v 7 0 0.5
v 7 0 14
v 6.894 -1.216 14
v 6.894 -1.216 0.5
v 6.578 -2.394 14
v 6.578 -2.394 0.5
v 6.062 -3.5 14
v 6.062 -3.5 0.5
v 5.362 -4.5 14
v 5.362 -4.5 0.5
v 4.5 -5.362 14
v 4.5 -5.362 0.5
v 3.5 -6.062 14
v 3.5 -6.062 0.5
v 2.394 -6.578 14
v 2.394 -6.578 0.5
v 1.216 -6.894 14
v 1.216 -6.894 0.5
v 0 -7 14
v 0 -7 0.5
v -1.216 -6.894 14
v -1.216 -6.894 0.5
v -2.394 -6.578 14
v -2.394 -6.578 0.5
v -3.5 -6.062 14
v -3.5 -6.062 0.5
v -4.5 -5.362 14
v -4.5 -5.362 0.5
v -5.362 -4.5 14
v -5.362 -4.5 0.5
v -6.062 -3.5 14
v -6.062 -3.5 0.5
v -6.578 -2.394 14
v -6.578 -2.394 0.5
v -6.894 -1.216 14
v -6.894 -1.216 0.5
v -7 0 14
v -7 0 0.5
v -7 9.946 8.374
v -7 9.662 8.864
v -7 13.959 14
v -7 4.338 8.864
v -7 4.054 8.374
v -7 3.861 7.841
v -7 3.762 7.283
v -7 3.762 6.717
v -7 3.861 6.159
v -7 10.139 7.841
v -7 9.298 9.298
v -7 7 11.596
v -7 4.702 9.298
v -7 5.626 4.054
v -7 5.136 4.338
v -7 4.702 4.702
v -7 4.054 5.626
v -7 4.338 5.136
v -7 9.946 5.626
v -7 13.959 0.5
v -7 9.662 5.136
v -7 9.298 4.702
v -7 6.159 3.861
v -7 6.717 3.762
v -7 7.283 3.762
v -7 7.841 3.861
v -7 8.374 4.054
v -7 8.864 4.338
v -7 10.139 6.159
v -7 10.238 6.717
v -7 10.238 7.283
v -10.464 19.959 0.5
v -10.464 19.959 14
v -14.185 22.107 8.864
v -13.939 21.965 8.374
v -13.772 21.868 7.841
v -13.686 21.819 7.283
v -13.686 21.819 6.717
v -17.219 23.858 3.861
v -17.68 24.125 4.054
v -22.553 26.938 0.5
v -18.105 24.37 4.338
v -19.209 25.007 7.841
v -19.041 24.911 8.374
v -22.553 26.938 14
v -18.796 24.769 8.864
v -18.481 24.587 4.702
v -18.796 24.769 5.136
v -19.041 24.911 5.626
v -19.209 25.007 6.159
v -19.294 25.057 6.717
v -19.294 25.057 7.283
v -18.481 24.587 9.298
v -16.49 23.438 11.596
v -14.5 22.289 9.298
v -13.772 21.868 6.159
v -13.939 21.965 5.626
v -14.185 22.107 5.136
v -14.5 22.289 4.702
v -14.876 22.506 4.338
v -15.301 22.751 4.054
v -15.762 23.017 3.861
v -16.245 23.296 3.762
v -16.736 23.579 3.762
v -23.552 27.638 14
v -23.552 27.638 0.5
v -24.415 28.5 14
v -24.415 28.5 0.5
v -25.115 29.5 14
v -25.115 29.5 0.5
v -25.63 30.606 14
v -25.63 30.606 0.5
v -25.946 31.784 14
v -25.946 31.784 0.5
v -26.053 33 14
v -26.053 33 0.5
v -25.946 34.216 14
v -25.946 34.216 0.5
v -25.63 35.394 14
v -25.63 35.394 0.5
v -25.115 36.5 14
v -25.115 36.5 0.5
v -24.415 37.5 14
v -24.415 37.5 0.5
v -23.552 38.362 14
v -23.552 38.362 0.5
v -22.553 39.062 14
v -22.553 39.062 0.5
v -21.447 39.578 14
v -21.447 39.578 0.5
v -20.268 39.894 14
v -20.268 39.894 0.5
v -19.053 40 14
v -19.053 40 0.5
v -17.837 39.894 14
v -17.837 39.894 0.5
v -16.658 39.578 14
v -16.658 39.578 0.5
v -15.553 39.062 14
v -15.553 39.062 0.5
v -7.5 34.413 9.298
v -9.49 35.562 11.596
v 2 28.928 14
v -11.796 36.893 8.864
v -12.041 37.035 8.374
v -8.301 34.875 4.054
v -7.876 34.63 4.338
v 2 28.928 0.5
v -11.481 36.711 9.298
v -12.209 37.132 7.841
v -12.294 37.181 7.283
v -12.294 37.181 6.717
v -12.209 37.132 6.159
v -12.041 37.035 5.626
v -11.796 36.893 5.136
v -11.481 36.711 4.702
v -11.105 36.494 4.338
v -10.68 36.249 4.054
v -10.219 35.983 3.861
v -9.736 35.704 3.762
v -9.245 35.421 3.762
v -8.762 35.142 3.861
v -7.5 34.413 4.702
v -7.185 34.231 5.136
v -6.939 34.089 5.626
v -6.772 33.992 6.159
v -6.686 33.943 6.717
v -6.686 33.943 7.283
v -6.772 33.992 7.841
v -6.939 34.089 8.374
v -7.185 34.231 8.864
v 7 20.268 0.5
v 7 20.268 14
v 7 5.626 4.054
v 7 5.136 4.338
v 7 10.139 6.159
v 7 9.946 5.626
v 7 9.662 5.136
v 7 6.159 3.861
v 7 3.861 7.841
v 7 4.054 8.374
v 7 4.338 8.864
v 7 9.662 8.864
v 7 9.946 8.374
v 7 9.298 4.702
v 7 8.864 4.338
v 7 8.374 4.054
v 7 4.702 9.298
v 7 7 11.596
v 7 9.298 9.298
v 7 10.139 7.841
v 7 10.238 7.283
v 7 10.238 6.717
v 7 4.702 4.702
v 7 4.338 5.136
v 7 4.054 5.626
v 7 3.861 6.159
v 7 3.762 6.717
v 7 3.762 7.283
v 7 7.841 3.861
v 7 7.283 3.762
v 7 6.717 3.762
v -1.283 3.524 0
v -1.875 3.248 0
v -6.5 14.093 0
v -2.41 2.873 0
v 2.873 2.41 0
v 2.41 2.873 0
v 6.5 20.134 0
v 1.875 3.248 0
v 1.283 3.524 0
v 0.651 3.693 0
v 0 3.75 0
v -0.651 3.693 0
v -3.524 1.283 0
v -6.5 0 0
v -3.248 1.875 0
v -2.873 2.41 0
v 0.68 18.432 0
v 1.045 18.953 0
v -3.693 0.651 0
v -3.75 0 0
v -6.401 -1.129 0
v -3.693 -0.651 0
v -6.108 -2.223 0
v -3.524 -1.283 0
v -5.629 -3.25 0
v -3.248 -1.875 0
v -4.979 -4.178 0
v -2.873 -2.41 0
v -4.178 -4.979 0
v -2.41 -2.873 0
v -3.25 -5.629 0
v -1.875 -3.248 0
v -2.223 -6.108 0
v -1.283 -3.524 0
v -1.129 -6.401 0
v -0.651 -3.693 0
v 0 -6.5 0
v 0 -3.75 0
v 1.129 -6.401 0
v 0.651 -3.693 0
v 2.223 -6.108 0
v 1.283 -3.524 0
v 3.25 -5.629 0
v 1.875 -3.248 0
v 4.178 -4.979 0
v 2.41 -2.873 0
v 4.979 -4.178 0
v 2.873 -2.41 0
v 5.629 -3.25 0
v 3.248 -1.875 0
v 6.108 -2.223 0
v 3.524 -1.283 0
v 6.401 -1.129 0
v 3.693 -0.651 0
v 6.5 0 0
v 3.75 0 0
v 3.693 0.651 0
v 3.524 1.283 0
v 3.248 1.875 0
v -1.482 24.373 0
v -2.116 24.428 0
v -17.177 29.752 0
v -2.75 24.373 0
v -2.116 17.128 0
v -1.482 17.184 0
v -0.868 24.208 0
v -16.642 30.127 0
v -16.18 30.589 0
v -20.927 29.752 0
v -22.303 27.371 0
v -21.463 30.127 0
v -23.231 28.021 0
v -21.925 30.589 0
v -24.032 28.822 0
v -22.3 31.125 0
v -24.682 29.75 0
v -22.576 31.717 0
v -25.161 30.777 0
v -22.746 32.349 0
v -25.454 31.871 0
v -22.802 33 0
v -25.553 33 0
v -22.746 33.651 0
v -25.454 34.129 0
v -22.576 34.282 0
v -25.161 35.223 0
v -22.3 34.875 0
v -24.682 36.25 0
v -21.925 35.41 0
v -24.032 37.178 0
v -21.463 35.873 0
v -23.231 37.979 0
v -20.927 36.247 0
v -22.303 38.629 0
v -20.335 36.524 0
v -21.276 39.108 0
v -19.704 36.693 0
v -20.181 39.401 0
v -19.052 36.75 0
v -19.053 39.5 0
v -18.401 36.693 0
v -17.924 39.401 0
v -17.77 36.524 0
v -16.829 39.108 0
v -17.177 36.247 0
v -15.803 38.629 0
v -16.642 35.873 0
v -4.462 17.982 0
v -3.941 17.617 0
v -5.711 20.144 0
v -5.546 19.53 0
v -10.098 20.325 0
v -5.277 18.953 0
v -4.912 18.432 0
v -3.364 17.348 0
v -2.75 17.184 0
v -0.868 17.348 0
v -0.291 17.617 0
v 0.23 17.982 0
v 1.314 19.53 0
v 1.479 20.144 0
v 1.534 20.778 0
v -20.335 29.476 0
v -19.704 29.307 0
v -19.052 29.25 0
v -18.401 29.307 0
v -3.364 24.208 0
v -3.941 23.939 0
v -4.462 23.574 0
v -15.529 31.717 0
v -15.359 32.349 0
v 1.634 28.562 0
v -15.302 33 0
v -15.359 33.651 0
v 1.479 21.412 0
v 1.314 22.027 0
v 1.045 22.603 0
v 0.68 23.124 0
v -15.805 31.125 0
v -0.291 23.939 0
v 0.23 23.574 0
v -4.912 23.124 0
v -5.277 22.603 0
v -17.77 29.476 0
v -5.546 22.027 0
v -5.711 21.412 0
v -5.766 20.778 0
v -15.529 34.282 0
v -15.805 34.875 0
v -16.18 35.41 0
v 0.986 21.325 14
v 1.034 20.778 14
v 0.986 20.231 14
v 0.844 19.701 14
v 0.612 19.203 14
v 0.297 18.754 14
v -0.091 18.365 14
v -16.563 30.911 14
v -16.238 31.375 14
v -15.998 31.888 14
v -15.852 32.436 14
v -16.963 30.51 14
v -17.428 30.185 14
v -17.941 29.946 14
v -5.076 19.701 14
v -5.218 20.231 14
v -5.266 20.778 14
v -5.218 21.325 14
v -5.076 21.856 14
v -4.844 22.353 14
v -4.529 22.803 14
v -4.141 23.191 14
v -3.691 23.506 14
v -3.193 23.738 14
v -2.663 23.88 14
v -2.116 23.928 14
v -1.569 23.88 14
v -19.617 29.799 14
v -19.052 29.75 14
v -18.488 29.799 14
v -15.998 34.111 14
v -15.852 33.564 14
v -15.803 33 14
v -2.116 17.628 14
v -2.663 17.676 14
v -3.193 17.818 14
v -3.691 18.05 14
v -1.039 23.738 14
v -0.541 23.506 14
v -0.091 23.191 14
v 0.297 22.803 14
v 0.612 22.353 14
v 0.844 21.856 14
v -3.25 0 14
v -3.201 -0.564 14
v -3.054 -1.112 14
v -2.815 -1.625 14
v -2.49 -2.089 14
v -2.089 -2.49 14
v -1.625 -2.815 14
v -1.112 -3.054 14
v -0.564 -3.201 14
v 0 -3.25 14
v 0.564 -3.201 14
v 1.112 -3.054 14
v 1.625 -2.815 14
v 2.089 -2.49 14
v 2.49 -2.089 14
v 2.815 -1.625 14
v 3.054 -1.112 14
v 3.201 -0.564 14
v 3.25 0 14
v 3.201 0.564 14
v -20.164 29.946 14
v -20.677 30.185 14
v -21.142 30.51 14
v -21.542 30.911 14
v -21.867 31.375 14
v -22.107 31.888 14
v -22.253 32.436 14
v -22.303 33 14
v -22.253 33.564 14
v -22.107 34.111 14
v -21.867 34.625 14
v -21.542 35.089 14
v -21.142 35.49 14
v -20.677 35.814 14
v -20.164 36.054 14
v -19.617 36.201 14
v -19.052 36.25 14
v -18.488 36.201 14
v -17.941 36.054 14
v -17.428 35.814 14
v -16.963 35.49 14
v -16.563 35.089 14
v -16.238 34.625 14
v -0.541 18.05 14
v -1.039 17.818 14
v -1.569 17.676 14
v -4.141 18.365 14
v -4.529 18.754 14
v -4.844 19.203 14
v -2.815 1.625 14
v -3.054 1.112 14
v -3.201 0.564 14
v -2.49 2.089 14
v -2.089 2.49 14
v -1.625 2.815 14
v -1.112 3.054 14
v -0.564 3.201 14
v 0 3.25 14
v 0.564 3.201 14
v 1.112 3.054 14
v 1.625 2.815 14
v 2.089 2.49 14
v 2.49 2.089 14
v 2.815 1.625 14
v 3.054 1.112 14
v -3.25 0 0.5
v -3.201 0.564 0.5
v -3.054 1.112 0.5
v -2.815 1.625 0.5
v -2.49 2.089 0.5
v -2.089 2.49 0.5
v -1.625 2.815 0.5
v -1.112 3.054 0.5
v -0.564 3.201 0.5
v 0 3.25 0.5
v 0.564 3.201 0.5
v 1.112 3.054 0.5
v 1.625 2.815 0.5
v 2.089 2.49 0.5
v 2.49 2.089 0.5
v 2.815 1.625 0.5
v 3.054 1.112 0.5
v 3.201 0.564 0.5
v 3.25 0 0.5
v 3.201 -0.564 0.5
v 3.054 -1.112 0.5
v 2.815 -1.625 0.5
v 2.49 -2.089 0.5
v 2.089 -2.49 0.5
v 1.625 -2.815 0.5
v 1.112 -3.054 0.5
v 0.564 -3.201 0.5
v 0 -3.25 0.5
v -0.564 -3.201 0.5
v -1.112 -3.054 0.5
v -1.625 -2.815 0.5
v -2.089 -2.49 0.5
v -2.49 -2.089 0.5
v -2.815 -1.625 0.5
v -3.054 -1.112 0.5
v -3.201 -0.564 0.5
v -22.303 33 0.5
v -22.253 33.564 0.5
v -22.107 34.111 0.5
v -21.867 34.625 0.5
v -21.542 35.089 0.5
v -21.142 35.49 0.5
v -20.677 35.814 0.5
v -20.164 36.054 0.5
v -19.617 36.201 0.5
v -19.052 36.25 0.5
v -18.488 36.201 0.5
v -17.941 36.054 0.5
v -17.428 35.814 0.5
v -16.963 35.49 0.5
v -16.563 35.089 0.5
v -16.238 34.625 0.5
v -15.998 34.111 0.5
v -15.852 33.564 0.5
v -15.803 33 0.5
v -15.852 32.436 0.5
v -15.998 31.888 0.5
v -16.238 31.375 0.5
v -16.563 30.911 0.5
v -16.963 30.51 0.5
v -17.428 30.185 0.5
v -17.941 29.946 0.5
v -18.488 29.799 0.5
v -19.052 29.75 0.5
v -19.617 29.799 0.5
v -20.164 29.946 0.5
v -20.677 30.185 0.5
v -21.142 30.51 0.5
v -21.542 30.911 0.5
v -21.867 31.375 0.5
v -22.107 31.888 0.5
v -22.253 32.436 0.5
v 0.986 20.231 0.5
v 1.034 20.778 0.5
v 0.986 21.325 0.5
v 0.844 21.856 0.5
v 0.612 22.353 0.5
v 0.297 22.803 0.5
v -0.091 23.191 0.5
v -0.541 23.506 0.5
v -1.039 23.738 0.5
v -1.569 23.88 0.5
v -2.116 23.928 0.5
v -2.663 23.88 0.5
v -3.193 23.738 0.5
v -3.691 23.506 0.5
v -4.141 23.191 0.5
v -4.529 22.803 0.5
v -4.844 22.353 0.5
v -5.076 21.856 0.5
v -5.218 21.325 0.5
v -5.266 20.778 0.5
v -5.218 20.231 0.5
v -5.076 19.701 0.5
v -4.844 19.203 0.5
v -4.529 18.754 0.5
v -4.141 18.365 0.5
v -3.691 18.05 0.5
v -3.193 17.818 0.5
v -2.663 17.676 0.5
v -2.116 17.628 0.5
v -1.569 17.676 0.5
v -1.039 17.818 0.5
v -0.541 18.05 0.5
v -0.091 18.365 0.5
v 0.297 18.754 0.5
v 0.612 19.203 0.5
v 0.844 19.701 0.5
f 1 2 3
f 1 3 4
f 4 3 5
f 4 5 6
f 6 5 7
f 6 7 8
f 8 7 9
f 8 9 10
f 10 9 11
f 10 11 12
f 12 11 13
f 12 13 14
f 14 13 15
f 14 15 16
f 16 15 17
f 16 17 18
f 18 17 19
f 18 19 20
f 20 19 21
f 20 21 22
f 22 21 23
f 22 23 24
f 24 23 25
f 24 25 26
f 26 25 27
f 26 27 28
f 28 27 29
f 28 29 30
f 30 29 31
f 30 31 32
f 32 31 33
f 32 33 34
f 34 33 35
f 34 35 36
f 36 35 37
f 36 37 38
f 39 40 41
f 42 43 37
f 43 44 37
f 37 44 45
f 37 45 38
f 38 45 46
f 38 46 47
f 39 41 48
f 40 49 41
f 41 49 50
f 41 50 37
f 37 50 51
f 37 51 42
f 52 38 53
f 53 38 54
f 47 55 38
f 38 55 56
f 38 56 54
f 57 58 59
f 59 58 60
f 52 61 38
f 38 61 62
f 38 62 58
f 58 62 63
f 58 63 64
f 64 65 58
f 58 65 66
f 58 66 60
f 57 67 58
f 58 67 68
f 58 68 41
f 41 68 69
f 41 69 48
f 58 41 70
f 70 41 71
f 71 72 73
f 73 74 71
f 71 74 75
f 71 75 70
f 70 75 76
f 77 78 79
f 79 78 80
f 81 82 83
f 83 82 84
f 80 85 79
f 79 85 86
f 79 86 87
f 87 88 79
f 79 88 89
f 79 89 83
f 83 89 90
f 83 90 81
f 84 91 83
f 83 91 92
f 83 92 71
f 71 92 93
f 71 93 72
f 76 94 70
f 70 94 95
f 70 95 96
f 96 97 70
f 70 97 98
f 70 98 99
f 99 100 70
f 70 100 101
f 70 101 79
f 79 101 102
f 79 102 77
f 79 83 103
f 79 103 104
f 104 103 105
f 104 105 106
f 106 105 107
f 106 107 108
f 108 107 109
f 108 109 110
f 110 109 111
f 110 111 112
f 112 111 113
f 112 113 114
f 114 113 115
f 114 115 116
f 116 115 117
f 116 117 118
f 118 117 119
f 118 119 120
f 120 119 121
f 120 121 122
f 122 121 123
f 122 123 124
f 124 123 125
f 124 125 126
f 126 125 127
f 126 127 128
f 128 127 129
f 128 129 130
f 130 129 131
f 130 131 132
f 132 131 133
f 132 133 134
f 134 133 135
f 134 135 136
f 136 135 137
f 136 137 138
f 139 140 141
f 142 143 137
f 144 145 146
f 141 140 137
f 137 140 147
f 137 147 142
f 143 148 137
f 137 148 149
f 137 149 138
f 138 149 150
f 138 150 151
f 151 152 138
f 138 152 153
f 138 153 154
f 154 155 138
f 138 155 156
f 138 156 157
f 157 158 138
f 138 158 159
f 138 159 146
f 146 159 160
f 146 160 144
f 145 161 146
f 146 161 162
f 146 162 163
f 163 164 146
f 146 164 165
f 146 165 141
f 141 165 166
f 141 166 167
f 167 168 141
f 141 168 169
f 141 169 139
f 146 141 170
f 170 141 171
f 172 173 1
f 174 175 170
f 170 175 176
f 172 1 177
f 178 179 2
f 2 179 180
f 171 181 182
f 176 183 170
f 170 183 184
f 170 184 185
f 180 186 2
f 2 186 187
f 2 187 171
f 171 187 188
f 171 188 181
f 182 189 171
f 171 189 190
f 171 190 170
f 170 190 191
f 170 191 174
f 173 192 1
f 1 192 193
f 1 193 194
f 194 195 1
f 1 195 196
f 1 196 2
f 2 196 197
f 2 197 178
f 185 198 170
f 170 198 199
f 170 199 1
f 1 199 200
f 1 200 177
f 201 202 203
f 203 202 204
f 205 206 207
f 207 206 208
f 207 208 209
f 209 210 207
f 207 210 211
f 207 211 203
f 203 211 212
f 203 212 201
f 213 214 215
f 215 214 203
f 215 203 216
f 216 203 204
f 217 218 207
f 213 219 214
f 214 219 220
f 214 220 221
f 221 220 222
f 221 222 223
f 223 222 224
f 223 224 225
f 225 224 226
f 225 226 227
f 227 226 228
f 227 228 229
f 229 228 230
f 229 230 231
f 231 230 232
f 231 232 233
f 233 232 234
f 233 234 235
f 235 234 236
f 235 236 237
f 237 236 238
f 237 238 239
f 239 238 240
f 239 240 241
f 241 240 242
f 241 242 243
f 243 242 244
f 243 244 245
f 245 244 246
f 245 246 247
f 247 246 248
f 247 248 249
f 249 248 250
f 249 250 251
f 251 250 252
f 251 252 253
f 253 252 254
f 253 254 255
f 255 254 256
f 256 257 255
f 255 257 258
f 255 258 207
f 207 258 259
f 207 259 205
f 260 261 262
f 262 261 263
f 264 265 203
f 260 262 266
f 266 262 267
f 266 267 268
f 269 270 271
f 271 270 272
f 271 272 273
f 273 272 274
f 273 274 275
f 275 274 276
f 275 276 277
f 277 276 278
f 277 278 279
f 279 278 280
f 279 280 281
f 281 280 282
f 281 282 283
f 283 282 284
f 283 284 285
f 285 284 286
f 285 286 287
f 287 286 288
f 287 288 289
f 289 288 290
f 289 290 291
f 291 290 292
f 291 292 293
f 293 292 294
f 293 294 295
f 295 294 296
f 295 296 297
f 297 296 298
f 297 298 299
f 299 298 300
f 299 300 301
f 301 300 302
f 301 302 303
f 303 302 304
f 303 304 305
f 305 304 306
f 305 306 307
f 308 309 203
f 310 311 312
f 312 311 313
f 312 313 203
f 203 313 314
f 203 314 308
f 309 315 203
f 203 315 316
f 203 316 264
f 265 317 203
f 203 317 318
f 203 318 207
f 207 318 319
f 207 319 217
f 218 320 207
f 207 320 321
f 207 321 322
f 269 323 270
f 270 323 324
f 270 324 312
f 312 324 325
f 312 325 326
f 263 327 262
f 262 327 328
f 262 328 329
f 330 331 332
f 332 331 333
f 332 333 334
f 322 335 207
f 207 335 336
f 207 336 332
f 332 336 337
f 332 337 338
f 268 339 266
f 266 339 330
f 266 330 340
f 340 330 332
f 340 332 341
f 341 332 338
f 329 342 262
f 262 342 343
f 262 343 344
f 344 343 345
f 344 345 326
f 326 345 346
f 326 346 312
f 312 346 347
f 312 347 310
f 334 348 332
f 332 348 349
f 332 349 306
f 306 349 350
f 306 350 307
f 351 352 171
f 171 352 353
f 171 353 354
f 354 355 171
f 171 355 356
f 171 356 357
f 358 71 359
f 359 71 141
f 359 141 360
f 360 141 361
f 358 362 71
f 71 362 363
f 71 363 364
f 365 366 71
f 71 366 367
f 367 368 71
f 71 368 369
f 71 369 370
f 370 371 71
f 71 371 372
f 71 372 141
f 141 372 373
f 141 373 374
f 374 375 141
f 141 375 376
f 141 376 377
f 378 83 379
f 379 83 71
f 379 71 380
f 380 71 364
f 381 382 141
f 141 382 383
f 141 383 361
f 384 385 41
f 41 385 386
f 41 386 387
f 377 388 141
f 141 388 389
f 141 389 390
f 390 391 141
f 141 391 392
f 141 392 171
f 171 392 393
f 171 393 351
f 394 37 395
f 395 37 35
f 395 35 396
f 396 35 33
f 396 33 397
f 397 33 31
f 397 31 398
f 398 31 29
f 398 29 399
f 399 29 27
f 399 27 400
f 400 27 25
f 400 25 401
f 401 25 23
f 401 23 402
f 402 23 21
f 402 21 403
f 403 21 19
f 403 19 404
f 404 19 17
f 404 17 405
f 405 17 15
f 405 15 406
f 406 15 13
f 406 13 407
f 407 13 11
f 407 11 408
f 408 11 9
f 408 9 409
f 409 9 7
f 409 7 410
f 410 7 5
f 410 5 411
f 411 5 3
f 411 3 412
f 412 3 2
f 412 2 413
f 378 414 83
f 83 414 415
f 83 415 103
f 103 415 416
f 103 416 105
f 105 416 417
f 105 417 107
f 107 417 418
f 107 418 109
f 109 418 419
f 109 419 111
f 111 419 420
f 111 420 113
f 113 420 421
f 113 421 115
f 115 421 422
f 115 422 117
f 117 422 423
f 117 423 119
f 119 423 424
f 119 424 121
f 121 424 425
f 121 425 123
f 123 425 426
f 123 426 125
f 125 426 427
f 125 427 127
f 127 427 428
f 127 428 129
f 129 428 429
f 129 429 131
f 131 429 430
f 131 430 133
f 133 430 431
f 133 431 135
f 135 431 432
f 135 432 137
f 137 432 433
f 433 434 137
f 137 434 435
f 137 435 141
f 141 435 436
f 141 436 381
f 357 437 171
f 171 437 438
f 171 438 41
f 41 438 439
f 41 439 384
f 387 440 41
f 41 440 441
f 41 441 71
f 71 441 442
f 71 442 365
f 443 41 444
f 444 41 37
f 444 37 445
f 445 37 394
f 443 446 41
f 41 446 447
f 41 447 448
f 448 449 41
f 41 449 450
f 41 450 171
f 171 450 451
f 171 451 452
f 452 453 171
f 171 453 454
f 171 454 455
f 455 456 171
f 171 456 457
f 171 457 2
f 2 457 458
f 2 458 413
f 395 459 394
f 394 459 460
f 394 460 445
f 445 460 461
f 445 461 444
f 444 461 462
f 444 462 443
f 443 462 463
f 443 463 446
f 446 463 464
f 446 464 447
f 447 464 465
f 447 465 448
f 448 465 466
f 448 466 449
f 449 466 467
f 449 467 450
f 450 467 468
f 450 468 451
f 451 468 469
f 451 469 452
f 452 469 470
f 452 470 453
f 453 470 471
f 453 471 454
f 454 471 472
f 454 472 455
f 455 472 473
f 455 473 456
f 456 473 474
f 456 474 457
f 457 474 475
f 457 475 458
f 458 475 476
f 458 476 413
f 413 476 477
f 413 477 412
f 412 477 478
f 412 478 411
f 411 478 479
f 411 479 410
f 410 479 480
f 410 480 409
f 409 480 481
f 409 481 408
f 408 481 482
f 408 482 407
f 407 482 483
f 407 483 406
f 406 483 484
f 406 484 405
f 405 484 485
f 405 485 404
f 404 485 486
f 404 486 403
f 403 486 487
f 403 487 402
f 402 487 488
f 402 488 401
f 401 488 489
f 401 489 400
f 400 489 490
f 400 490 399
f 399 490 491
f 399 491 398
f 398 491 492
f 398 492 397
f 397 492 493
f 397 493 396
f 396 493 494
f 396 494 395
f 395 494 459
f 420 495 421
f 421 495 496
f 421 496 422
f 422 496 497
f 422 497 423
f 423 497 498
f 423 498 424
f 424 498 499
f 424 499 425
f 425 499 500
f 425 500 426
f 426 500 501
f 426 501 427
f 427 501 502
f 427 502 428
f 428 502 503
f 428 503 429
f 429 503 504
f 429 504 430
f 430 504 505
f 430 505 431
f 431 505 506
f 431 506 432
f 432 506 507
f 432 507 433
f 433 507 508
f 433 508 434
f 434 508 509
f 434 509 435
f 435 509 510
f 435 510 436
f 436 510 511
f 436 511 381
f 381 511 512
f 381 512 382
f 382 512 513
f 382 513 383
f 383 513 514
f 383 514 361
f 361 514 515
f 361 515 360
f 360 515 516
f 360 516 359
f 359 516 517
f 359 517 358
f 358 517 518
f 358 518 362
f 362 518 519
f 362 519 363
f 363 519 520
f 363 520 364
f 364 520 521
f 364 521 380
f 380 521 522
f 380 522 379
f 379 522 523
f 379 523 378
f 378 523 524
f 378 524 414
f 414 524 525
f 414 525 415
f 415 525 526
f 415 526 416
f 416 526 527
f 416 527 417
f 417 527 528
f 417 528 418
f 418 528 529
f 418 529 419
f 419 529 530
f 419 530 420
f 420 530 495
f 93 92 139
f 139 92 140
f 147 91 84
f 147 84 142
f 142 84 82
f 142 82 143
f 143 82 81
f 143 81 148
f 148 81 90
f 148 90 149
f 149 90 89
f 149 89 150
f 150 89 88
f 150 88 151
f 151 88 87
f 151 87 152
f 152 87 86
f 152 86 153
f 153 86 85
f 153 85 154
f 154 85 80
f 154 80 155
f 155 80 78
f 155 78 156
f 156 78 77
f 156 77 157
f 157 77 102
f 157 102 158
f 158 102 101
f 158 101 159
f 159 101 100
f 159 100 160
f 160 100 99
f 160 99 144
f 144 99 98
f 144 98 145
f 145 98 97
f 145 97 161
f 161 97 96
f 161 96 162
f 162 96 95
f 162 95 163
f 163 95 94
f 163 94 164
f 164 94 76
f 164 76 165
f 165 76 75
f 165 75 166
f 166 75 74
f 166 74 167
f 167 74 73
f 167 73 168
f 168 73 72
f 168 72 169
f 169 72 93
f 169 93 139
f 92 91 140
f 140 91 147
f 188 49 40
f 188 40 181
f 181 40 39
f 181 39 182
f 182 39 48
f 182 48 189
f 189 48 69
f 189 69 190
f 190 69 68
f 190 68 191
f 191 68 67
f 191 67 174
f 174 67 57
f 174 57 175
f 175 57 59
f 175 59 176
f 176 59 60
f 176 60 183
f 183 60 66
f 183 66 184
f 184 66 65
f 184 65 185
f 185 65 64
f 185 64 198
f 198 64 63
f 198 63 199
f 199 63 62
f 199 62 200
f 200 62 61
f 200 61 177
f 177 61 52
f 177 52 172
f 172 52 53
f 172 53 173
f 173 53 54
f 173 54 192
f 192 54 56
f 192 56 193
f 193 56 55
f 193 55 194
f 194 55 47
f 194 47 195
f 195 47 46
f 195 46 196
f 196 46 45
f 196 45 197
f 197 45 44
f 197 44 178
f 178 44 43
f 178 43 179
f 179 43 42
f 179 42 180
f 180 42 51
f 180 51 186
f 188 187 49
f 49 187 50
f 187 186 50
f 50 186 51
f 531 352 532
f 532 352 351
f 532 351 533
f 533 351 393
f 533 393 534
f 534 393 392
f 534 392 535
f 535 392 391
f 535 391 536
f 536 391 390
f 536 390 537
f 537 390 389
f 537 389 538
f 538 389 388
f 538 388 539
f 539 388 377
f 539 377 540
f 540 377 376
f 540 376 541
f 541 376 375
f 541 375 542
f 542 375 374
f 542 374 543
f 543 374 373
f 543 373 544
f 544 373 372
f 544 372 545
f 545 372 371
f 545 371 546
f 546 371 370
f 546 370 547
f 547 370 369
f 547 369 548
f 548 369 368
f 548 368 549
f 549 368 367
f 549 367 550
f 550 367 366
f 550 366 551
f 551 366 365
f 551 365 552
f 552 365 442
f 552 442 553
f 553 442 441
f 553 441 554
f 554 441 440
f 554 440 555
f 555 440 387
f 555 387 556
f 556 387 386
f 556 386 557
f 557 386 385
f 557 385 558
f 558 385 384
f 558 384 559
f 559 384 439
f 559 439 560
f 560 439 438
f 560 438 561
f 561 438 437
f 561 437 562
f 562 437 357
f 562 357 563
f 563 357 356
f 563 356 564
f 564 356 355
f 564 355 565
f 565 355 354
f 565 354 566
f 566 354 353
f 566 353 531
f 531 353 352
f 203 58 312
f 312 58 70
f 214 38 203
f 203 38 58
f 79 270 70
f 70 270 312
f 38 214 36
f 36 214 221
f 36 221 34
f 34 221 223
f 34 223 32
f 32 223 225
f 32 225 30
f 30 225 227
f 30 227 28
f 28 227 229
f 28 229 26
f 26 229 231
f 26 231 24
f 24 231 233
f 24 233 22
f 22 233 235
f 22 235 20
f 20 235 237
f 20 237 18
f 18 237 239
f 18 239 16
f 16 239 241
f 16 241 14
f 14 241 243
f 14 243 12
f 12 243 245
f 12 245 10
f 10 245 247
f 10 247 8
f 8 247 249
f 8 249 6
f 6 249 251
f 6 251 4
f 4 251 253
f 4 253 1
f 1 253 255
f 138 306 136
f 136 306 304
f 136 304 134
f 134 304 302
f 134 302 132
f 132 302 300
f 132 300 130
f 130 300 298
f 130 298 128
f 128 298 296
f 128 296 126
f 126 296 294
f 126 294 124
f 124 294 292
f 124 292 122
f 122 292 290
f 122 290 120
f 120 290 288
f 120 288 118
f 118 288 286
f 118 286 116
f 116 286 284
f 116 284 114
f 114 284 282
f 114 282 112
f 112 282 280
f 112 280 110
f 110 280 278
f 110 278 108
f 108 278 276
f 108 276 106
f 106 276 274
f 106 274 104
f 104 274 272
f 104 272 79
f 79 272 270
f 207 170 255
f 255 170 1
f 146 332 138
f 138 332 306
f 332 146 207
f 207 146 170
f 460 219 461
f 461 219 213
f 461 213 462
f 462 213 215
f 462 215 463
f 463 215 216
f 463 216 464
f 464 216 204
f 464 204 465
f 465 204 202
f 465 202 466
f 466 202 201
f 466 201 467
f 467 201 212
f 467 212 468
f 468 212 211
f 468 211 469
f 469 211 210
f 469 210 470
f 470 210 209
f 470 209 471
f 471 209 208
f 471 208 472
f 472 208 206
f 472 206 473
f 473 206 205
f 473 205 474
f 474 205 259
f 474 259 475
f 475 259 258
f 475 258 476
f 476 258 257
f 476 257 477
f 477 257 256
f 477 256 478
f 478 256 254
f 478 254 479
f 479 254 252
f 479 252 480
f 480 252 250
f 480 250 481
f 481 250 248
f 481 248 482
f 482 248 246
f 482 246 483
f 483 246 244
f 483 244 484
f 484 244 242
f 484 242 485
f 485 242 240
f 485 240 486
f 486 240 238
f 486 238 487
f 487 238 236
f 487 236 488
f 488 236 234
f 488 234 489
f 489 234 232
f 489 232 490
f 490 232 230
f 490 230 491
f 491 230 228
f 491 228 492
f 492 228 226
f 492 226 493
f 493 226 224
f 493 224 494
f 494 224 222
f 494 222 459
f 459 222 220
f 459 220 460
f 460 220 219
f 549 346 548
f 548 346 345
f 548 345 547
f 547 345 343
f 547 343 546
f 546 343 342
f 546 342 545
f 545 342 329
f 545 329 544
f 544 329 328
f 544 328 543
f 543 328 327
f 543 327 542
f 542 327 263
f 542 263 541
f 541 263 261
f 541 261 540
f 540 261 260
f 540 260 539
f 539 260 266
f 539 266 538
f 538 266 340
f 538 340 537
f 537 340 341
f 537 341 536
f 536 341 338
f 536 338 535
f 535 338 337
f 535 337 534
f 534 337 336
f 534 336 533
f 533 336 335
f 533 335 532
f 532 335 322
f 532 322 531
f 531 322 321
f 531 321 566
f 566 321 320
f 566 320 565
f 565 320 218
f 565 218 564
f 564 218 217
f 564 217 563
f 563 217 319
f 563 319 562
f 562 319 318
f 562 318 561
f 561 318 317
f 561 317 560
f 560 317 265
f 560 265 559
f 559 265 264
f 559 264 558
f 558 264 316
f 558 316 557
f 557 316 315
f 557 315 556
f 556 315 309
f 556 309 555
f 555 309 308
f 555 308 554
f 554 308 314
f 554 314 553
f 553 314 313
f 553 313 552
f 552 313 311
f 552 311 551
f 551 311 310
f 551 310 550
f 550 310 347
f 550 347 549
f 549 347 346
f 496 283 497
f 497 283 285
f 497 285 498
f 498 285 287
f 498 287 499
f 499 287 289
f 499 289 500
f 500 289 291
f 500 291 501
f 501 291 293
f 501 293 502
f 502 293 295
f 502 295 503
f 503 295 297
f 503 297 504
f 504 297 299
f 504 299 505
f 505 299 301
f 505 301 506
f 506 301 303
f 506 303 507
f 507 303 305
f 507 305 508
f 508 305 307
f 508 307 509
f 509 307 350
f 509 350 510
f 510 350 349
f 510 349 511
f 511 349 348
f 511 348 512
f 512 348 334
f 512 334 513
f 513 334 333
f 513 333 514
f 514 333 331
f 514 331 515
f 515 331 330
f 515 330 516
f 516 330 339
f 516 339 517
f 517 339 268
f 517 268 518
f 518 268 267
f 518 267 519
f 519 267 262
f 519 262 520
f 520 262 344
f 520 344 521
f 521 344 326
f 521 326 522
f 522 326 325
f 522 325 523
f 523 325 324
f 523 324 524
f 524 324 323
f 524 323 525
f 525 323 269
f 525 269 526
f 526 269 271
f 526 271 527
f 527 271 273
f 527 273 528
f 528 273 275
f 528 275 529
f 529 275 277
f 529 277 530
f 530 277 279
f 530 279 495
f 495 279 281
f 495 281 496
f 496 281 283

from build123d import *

# Parameters (mm, degrees)
BOSS_EXTRUDE1_DEPTH = 14
HOLE1_D             = 6.5
HOLE2_D             = 6.5
CUT_EXTRUDE1_DEPTH  = 46.814563472
CUT_EXTRUDE2_DEPTH  = 47.465040622
SKETCH8_R           = 3.15
CUT_EXTRUDE3_DEPTH  = 50.746716719
CHAMFER1_SIZE       = 0.5


with BuildPart() as part:
    # Sketch1 → Boss-Extrude1 (new body)
    with BuildSketch(Plane.XY.offset(14)):
        with BuildLine():
            Line((7, 0), (7, 20.267949192))
            Line((7, 20.267949192), (2, 28.92820323))
            Line((2, 28.92820323), (-15.552558883, 39.062177826))
            ThreePointArc((-15.552558883, 39.062177826), (-25.11473671, 36.5), (-22.552558883, 26.937822174))
            Line((-22.552558883, 26.937822174), (-10.464101615, 19.958548116))
            Line((-10.464101615, 19.958548116), (-7, 13.958548116))
            Line((-7, 13.958548116), (-7, 0))
            ThreePointArc((-7, 0), (0, -7), (7, 0))
        make_face()
    extrude(amount=-BOSS_EXTRUDE1_DEPTH)

    # Hole1 (through all)
    with Locations(Plane(origin=(0, 0, 0), x_dir=(-1, 0, 0), z_dir=(0, 0, -1))):
        with Locations((0, 0)):
            Hole(HOLE1_D / 2)

    # Hole2 (through all)
    with Locations(Plane(origin=(0, 0, 0), x_dir=(-1, 0, 0), z_dir=(0, 0, -1))):
        with Locations((19.0525, 32.999898011)):
            Hole(HOLE2_D / 2)

    # Sketch2 → Cut-Extrude1 (cut, through all)
    with BuildSketch(Plane(origin=(6.026279442, 10.437822174, 0), x_dir=(0.8660254037844398, -0.49999999999999806, 0), z_dir=(-0.499999999999998, -0.8660254037844397, 0))):
        with BuildLine():
            Line((-25.999898011, 11.596194078), (-28.29799505, 9.298097039))
            ThreePointArc((-28.29799505, 9.298097039), (-25.999898011, 3.75), (-23.701800972, 9.298097039))
            Line((-23.701800972, 9.298097039), (-25.999898011, 11.596194078))
        make_face()
    extrude(amount=-CUT_EXTRUDE1_DEPTH, mode=Mode.SUBTRACT)

    # Sketch3 → Cut-Extrude2 (cut, through all)
    with BuildSketch(Plane.ZY.offset(7)):
        with BuildLine():
            Line((9.298097039, 4.701902961), (11.596194078, 7))
            Line((11.596194078, 7), (9.298097039, 9.298097039))
            ThreePointArc((9.298097039, 9.298097039), (3.75, 7), (9.298097039, 4.701902961))
        make_face()
    extrude(amount=-CUT_EXTRUDE2_DEPTH, mode=Mode.SUBTRACT)

    # Sketch8 → Cut-Extrude3 (cut, through all)
    with BuildSketch(Plane.XY.offset(14)):
        with Locations((-2.116025404, 20.778312164)):
            Circle(SKETCH8_R)
    extrude(amount=-CUT_EXTRUDE3_DEPTH, mode=Mode.SUBTRACT)

    # Chamfer1
    chamfer1_edges = [part.edges().sort_by_distance(p)[0] for p in [
        (4.5, 24.598076211, 0),
        (-6.776279442, 33.995190528, 0),
        (-25.11473671, 36.5, 0),
        (-16.508330249, 23.448185145, 0),
        (-8.732050808, 16.958548116, 0),
        (-3.25, 0, 0),
        (-7, 6.979274058, 0),
        (-22.3025, 32.999898011, 0),
        (0, -7, 0),
        (-5.266025404, 20.778312164, 0),
        (7, 10.133974596, 0),
    ]]
    chamfer(chamfer1_edges, length=CHAMFER1_SIZE)


solid = part.part
